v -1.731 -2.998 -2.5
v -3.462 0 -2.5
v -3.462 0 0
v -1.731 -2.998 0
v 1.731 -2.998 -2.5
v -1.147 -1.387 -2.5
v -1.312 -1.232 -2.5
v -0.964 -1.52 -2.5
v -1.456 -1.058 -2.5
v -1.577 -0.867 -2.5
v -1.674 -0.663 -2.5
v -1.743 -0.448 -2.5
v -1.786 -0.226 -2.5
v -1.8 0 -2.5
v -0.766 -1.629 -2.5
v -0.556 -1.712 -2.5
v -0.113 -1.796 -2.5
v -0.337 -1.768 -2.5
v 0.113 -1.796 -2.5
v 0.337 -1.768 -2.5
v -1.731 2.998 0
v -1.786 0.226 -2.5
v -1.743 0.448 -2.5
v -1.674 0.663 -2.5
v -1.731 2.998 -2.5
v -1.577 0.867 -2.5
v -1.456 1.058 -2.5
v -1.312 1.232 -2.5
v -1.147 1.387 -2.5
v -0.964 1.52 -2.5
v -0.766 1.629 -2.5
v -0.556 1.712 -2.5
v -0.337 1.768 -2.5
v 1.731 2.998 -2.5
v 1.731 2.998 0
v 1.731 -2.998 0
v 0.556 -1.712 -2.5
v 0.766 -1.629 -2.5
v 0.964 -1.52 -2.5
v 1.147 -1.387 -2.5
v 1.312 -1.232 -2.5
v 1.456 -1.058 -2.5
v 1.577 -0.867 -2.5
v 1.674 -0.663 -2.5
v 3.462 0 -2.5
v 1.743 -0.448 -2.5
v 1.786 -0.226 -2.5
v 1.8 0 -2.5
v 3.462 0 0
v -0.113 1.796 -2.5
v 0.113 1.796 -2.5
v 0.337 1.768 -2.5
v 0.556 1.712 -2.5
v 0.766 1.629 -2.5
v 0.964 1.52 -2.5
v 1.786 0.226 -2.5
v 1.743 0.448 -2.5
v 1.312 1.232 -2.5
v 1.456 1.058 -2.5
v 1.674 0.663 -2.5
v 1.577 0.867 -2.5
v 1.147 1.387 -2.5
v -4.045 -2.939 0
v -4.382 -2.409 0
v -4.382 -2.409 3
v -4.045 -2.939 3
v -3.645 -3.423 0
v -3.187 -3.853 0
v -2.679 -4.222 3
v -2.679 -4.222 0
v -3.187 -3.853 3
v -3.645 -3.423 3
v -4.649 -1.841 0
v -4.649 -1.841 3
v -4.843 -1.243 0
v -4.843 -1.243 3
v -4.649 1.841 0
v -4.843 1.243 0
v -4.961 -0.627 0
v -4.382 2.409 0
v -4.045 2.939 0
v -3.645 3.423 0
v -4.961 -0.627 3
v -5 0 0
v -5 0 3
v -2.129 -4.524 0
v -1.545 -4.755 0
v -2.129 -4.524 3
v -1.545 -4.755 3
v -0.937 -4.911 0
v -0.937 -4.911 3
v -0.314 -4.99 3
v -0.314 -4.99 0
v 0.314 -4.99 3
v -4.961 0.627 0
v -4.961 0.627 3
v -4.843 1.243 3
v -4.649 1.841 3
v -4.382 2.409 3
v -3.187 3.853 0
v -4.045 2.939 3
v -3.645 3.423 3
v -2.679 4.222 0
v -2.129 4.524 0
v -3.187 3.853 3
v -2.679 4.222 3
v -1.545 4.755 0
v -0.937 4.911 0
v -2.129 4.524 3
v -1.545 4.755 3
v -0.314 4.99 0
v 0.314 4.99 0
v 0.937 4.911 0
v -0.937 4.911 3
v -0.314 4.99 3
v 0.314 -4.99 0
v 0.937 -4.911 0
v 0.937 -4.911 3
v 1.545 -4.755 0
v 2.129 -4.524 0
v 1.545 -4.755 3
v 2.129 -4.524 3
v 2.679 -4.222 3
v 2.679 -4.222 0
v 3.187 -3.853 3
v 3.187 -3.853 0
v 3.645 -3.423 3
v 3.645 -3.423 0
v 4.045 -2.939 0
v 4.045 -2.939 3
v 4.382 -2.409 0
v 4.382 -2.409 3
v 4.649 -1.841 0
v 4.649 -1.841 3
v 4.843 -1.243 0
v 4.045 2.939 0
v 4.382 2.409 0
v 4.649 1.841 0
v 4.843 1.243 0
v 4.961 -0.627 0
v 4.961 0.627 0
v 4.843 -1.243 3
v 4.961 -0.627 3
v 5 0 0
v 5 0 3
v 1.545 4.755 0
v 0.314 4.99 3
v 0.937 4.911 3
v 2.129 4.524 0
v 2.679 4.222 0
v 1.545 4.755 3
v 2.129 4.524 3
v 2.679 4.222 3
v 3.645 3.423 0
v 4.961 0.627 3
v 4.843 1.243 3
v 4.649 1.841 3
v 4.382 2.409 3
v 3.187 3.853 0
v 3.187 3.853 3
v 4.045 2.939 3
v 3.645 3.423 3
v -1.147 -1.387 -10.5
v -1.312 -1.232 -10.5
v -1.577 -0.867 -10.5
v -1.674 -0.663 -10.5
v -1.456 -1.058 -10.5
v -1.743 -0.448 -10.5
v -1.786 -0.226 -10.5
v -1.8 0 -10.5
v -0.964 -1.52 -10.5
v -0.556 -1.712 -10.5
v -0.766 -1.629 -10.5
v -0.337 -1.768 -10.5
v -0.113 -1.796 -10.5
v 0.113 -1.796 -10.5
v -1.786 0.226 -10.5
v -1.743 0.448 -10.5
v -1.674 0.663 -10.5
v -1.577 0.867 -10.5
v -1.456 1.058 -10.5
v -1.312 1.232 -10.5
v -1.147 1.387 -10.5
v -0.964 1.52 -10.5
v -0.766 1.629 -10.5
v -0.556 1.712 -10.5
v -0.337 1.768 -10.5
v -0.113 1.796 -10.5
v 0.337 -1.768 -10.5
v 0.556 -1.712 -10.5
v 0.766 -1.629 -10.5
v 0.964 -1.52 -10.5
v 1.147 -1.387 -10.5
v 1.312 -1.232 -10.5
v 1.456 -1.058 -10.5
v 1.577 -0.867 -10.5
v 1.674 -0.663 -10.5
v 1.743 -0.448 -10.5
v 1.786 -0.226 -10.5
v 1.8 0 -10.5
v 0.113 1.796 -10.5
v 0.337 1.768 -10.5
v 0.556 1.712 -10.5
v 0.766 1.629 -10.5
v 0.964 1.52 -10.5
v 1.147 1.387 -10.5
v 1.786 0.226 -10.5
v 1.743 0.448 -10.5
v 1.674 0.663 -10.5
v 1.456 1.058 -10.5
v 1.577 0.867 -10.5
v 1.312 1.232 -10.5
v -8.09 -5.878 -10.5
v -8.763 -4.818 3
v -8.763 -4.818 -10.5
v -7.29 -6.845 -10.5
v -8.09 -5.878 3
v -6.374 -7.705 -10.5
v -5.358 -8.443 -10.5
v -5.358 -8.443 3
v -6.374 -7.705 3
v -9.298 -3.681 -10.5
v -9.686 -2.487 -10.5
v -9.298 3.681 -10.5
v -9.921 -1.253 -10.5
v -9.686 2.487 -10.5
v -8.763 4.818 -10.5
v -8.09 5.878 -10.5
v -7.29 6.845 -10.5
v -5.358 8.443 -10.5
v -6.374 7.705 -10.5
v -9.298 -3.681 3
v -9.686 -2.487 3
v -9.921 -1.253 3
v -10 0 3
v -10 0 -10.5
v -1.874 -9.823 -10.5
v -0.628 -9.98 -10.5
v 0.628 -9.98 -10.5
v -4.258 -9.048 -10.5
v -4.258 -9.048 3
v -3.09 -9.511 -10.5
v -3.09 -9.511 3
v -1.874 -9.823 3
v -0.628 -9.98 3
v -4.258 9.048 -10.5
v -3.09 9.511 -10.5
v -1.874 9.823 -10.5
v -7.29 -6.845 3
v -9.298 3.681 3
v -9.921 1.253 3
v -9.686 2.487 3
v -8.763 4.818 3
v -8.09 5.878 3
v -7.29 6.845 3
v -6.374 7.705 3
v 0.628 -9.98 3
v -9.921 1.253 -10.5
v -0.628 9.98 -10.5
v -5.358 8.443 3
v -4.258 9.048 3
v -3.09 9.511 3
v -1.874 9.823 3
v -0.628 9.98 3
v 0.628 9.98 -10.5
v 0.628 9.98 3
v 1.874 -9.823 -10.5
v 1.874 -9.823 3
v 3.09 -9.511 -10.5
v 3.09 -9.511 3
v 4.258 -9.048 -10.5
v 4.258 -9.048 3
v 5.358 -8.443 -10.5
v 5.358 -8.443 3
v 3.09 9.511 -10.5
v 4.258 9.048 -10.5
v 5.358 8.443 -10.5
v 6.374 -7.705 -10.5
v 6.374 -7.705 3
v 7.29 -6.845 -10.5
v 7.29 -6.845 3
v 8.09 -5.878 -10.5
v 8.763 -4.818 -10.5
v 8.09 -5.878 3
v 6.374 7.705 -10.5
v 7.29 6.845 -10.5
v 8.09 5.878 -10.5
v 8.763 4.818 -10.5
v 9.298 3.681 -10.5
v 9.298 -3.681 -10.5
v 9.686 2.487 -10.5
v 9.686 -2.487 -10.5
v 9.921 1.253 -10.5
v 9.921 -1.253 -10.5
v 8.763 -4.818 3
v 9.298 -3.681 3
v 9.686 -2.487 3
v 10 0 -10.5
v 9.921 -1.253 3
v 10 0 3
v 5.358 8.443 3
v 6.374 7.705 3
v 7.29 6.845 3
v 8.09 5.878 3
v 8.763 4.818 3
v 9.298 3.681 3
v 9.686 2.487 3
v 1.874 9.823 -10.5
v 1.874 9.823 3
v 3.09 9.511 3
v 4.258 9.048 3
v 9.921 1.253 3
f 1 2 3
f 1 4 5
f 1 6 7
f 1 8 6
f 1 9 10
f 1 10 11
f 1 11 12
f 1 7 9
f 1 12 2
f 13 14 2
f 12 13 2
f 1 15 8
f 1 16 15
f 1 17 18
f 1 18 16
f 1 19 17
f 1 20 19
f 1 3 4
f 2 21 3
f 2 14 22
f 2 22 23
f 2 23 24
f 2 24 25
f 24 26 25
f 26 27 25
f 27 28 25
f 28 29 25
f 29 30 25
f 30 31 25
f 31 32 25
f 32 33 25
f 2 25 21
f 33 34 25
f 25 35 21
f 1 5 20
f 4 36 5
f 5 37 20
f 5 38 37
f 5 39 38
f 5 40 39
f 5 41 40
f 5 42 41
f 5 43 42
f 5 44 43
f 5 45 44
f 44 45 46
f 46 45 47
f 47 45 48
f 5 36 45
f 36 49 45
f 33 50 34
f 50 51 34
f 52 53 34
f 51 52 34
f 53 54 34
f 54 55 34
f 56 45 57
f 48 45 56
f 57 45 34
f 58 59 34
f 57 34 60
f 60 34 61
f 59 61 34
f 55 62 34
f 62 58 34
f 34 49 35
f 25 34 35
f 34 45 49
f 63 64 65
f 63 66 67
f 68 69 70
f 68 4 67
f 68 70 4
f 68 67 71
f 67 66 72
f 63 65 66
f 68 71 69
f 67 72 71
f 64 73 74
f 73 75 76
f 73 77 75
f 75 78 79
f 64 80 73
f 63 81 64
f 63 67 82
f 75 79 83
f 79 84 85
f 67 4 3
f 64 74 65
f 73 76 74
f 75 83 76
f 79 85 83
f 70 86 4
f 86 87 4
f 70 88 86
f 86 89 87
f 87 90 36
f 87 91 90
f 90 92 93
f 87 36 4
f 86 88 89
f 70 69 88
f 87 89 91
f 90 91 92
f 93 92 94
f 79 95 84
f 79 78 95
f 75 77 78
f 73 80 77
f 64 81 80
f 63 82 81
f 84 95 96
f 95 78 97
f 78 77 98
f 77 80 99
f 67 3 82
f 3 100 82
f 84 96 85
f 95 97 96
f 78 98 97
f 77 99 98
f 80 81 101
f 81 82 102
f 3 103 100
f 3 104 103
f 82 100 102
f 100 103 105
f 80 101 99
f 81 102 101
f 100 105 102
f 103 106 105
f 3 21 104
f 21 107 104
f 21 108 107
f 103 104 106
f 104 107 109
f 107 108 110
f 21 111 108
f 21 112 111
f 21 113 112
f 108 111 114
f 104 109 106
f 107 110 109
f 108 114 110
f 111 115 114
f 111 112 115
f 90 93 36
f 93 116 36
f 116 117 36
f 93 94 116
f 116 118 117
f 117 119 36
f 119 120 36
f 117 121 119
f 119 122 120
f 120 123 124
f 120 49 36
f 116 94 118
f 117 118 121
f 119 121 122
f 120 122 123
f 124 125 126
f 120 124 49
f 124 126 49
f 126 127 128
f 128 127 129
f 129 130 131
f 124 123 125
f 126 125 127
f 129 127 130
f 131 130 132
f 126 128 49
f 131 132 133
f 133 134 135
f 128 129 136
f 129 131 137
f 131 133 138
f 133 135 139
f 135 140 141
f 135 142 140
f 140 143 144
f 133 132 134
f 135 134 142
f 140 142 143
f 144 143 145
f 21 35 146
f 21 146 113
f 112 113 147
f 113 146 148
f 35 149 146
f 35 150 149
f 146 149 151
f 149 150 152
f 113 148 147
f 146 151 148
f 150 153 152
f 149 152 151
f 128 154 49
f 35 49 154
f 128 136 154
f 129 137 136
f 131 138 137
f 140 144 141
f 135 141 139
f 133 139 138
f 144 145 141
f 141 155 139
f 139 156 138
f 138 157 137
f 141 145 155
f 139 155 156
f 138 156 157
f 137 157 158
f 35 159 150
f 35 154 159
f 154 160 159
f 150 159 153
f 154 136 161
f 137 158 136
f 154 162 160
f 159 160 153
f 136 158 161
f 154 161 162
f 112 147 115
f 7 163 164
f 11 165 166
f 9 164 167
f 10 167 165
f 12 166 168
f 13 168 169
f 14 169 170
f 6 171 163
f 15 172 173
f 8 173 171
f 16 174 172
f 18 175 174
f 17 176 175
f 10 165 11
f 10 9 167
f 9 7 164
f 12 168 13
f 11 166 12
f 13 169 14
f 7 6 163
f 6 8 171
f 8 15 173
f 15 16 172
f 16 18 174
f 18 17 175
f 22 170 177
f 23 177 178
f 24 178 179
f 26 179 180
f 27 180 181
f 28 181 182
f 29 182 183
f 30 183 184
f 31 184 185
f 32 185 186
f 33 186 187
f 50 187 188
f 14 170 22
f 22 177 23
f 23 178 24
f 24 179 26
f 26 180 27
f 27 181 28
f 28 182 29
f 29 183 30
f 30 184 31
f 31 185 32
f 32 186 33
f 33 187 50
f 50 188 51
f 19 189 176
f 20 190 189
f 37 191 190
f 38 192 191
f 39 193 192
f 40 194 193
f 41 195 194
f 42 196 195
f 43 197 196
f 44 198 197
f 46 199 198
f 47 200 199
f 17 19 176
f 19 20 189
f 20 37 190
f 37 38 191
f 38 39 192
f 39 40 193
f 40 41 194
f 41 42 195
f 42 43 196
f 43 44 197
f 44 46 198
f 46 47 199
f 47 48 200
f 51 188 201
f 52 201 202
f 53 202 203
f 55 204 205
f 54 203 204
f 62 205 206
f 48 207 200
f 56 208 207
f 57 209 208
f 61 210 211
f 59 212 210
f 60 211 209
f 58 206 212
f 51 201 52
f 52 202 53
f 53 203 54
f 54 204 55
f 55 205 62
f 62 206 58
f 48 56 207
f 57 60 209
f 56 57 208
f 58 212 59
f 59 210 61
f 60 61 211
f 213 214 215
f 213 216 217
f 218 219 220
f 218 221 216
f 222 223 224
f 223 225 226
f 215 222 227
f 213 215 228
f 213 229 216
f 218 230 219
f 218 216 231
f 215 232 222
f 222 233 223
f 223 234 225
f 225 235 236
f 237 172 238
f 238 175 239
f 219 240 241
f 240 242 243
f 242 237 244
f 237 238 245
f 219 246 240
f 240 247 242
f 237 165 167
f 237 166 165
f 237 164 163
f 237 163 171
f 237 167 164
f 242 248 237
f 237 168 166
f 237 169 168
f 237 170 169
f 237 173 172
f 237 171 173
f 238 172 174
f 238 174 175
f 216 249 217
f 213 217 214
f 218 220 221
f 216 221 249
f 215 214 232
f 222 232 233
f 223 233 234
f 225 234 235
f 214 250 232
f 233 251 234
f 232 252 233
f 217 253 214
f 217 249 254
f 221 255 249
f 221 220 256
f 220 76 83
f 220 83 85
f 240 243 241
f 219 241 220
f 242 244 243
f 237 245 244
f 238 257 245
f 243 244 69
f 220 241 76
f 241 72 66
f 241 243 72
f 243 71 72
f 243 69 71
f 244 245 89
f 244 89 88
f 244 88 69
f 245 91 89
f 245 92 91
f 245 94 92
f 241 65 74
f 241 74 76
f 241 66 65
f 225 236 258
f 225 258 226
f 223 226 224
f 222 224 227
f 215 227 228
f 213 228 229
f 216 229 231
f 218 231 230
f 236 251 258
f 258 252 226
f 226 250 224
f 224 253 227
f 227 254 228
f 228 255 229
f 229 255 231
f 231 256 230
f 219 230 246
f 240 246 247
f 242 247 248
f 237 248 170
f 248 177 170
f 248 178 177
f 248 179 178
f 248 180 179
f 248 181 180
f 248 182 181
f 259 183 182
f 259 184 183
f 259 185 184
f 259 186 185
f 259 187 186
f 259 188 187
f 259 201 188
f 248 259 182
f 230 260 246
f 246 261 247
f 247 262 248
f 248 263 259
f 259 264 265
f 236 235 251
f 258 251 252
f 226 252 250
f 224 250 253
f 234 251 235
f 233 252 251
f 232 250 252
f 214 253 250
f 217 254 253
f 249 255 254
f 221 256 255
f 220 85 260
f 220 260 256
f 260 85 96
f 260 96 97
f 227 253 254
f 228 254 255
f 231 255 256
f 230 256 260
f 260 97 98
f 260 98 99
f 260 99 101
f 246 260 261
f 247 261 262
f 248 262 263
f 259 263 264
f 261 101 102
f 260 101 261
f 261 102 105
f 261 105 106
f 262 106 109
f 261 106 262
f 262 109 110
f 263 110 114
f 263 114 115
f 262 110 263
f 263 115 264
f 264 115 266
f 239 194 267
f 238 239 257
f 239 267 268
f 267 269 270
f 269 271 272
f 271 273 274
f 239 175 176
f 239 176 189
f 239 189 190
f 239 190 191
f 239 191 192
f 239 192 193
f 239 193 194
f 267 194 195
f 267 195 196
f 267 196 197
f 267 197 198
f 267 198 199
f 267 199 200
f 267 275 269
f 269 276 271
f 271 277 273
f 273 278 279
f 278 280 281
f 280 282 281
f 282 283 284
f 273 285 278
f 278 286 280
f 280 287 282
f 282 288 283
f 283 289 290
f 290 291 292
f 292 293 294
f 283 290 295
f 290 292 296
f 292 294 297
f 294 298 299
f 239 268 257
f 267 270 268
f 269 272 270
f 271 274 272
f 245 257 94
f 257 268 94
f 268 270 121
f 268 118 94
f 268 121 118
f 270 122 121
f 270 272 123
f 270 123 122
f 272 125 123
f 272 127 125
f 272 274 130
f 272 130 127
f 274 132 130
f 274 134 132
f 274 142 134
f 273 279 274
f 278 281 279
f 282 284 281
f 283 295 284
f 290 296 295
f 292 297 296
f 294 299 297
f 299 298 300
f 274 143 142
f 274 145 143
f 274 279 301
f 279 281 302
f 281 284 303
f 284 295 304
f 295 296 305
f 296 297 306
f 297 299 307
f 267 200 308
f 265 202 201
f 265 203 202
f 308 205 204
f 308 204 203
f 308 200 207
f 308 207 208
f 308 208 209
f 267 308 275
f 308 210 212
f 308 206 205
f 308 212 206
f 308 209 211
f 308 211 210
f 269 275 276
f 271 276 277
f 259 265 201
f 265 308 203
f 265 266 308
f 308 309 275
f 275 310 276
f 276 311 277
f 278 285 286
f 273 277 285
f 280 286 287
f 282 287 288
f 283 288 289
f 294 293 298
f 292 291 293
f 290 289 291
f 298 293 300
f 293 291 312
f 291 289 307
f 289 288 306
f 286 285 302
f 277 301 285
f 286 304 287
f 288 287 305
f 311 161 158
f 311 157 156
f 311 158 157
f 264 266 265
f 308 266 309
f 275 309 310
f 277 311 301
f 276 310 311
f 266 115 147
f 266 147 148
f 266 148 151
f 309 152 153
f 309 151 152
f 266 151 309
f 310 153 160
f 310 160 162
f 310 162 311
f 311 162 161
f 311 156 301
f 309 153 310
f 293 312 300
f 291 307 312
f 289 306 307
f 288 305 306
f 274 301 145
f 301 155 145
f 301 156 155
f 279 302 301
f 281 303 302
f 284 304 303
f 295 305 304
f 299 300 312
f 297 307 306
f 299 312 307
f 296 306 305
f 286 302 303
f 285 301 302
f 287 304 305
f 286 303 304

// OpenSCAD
$fn = 50;

difference() {
	union() {
		translate(v = [0, 0, -10.5]) {
			cylinder(h = 13.5, r = 10.0);
		}
	}
	union() {
		translate(v = [0, 0, 0]) {
			rotate(a = [0, 0, 0]) {
				difference() {
					union() {
						translate(v = [0, 0, -2.5]) {
							linear_extrude(height = 2.5) {
								polygon(points = [[3.4619999999999997, 0.0], [1.7310000000000003, 2.9981799479017264], [-1.7309999999999992, 2.9981799479017264], [-3.4619999999999997, 4.2397272186481365e-16], [-1.7310000000000014, -2.998179947901726], [1.7309999999999977, -2.9981799479017277]]);
							}
						}
					}
					union();
				}
			}
		}
		#cylinder(h = 3, r = 5.0);
		#translate(v = [0, 0, -100.0]) {
			cylinder(h = 200, r = 1.8);
		}
	}
}
